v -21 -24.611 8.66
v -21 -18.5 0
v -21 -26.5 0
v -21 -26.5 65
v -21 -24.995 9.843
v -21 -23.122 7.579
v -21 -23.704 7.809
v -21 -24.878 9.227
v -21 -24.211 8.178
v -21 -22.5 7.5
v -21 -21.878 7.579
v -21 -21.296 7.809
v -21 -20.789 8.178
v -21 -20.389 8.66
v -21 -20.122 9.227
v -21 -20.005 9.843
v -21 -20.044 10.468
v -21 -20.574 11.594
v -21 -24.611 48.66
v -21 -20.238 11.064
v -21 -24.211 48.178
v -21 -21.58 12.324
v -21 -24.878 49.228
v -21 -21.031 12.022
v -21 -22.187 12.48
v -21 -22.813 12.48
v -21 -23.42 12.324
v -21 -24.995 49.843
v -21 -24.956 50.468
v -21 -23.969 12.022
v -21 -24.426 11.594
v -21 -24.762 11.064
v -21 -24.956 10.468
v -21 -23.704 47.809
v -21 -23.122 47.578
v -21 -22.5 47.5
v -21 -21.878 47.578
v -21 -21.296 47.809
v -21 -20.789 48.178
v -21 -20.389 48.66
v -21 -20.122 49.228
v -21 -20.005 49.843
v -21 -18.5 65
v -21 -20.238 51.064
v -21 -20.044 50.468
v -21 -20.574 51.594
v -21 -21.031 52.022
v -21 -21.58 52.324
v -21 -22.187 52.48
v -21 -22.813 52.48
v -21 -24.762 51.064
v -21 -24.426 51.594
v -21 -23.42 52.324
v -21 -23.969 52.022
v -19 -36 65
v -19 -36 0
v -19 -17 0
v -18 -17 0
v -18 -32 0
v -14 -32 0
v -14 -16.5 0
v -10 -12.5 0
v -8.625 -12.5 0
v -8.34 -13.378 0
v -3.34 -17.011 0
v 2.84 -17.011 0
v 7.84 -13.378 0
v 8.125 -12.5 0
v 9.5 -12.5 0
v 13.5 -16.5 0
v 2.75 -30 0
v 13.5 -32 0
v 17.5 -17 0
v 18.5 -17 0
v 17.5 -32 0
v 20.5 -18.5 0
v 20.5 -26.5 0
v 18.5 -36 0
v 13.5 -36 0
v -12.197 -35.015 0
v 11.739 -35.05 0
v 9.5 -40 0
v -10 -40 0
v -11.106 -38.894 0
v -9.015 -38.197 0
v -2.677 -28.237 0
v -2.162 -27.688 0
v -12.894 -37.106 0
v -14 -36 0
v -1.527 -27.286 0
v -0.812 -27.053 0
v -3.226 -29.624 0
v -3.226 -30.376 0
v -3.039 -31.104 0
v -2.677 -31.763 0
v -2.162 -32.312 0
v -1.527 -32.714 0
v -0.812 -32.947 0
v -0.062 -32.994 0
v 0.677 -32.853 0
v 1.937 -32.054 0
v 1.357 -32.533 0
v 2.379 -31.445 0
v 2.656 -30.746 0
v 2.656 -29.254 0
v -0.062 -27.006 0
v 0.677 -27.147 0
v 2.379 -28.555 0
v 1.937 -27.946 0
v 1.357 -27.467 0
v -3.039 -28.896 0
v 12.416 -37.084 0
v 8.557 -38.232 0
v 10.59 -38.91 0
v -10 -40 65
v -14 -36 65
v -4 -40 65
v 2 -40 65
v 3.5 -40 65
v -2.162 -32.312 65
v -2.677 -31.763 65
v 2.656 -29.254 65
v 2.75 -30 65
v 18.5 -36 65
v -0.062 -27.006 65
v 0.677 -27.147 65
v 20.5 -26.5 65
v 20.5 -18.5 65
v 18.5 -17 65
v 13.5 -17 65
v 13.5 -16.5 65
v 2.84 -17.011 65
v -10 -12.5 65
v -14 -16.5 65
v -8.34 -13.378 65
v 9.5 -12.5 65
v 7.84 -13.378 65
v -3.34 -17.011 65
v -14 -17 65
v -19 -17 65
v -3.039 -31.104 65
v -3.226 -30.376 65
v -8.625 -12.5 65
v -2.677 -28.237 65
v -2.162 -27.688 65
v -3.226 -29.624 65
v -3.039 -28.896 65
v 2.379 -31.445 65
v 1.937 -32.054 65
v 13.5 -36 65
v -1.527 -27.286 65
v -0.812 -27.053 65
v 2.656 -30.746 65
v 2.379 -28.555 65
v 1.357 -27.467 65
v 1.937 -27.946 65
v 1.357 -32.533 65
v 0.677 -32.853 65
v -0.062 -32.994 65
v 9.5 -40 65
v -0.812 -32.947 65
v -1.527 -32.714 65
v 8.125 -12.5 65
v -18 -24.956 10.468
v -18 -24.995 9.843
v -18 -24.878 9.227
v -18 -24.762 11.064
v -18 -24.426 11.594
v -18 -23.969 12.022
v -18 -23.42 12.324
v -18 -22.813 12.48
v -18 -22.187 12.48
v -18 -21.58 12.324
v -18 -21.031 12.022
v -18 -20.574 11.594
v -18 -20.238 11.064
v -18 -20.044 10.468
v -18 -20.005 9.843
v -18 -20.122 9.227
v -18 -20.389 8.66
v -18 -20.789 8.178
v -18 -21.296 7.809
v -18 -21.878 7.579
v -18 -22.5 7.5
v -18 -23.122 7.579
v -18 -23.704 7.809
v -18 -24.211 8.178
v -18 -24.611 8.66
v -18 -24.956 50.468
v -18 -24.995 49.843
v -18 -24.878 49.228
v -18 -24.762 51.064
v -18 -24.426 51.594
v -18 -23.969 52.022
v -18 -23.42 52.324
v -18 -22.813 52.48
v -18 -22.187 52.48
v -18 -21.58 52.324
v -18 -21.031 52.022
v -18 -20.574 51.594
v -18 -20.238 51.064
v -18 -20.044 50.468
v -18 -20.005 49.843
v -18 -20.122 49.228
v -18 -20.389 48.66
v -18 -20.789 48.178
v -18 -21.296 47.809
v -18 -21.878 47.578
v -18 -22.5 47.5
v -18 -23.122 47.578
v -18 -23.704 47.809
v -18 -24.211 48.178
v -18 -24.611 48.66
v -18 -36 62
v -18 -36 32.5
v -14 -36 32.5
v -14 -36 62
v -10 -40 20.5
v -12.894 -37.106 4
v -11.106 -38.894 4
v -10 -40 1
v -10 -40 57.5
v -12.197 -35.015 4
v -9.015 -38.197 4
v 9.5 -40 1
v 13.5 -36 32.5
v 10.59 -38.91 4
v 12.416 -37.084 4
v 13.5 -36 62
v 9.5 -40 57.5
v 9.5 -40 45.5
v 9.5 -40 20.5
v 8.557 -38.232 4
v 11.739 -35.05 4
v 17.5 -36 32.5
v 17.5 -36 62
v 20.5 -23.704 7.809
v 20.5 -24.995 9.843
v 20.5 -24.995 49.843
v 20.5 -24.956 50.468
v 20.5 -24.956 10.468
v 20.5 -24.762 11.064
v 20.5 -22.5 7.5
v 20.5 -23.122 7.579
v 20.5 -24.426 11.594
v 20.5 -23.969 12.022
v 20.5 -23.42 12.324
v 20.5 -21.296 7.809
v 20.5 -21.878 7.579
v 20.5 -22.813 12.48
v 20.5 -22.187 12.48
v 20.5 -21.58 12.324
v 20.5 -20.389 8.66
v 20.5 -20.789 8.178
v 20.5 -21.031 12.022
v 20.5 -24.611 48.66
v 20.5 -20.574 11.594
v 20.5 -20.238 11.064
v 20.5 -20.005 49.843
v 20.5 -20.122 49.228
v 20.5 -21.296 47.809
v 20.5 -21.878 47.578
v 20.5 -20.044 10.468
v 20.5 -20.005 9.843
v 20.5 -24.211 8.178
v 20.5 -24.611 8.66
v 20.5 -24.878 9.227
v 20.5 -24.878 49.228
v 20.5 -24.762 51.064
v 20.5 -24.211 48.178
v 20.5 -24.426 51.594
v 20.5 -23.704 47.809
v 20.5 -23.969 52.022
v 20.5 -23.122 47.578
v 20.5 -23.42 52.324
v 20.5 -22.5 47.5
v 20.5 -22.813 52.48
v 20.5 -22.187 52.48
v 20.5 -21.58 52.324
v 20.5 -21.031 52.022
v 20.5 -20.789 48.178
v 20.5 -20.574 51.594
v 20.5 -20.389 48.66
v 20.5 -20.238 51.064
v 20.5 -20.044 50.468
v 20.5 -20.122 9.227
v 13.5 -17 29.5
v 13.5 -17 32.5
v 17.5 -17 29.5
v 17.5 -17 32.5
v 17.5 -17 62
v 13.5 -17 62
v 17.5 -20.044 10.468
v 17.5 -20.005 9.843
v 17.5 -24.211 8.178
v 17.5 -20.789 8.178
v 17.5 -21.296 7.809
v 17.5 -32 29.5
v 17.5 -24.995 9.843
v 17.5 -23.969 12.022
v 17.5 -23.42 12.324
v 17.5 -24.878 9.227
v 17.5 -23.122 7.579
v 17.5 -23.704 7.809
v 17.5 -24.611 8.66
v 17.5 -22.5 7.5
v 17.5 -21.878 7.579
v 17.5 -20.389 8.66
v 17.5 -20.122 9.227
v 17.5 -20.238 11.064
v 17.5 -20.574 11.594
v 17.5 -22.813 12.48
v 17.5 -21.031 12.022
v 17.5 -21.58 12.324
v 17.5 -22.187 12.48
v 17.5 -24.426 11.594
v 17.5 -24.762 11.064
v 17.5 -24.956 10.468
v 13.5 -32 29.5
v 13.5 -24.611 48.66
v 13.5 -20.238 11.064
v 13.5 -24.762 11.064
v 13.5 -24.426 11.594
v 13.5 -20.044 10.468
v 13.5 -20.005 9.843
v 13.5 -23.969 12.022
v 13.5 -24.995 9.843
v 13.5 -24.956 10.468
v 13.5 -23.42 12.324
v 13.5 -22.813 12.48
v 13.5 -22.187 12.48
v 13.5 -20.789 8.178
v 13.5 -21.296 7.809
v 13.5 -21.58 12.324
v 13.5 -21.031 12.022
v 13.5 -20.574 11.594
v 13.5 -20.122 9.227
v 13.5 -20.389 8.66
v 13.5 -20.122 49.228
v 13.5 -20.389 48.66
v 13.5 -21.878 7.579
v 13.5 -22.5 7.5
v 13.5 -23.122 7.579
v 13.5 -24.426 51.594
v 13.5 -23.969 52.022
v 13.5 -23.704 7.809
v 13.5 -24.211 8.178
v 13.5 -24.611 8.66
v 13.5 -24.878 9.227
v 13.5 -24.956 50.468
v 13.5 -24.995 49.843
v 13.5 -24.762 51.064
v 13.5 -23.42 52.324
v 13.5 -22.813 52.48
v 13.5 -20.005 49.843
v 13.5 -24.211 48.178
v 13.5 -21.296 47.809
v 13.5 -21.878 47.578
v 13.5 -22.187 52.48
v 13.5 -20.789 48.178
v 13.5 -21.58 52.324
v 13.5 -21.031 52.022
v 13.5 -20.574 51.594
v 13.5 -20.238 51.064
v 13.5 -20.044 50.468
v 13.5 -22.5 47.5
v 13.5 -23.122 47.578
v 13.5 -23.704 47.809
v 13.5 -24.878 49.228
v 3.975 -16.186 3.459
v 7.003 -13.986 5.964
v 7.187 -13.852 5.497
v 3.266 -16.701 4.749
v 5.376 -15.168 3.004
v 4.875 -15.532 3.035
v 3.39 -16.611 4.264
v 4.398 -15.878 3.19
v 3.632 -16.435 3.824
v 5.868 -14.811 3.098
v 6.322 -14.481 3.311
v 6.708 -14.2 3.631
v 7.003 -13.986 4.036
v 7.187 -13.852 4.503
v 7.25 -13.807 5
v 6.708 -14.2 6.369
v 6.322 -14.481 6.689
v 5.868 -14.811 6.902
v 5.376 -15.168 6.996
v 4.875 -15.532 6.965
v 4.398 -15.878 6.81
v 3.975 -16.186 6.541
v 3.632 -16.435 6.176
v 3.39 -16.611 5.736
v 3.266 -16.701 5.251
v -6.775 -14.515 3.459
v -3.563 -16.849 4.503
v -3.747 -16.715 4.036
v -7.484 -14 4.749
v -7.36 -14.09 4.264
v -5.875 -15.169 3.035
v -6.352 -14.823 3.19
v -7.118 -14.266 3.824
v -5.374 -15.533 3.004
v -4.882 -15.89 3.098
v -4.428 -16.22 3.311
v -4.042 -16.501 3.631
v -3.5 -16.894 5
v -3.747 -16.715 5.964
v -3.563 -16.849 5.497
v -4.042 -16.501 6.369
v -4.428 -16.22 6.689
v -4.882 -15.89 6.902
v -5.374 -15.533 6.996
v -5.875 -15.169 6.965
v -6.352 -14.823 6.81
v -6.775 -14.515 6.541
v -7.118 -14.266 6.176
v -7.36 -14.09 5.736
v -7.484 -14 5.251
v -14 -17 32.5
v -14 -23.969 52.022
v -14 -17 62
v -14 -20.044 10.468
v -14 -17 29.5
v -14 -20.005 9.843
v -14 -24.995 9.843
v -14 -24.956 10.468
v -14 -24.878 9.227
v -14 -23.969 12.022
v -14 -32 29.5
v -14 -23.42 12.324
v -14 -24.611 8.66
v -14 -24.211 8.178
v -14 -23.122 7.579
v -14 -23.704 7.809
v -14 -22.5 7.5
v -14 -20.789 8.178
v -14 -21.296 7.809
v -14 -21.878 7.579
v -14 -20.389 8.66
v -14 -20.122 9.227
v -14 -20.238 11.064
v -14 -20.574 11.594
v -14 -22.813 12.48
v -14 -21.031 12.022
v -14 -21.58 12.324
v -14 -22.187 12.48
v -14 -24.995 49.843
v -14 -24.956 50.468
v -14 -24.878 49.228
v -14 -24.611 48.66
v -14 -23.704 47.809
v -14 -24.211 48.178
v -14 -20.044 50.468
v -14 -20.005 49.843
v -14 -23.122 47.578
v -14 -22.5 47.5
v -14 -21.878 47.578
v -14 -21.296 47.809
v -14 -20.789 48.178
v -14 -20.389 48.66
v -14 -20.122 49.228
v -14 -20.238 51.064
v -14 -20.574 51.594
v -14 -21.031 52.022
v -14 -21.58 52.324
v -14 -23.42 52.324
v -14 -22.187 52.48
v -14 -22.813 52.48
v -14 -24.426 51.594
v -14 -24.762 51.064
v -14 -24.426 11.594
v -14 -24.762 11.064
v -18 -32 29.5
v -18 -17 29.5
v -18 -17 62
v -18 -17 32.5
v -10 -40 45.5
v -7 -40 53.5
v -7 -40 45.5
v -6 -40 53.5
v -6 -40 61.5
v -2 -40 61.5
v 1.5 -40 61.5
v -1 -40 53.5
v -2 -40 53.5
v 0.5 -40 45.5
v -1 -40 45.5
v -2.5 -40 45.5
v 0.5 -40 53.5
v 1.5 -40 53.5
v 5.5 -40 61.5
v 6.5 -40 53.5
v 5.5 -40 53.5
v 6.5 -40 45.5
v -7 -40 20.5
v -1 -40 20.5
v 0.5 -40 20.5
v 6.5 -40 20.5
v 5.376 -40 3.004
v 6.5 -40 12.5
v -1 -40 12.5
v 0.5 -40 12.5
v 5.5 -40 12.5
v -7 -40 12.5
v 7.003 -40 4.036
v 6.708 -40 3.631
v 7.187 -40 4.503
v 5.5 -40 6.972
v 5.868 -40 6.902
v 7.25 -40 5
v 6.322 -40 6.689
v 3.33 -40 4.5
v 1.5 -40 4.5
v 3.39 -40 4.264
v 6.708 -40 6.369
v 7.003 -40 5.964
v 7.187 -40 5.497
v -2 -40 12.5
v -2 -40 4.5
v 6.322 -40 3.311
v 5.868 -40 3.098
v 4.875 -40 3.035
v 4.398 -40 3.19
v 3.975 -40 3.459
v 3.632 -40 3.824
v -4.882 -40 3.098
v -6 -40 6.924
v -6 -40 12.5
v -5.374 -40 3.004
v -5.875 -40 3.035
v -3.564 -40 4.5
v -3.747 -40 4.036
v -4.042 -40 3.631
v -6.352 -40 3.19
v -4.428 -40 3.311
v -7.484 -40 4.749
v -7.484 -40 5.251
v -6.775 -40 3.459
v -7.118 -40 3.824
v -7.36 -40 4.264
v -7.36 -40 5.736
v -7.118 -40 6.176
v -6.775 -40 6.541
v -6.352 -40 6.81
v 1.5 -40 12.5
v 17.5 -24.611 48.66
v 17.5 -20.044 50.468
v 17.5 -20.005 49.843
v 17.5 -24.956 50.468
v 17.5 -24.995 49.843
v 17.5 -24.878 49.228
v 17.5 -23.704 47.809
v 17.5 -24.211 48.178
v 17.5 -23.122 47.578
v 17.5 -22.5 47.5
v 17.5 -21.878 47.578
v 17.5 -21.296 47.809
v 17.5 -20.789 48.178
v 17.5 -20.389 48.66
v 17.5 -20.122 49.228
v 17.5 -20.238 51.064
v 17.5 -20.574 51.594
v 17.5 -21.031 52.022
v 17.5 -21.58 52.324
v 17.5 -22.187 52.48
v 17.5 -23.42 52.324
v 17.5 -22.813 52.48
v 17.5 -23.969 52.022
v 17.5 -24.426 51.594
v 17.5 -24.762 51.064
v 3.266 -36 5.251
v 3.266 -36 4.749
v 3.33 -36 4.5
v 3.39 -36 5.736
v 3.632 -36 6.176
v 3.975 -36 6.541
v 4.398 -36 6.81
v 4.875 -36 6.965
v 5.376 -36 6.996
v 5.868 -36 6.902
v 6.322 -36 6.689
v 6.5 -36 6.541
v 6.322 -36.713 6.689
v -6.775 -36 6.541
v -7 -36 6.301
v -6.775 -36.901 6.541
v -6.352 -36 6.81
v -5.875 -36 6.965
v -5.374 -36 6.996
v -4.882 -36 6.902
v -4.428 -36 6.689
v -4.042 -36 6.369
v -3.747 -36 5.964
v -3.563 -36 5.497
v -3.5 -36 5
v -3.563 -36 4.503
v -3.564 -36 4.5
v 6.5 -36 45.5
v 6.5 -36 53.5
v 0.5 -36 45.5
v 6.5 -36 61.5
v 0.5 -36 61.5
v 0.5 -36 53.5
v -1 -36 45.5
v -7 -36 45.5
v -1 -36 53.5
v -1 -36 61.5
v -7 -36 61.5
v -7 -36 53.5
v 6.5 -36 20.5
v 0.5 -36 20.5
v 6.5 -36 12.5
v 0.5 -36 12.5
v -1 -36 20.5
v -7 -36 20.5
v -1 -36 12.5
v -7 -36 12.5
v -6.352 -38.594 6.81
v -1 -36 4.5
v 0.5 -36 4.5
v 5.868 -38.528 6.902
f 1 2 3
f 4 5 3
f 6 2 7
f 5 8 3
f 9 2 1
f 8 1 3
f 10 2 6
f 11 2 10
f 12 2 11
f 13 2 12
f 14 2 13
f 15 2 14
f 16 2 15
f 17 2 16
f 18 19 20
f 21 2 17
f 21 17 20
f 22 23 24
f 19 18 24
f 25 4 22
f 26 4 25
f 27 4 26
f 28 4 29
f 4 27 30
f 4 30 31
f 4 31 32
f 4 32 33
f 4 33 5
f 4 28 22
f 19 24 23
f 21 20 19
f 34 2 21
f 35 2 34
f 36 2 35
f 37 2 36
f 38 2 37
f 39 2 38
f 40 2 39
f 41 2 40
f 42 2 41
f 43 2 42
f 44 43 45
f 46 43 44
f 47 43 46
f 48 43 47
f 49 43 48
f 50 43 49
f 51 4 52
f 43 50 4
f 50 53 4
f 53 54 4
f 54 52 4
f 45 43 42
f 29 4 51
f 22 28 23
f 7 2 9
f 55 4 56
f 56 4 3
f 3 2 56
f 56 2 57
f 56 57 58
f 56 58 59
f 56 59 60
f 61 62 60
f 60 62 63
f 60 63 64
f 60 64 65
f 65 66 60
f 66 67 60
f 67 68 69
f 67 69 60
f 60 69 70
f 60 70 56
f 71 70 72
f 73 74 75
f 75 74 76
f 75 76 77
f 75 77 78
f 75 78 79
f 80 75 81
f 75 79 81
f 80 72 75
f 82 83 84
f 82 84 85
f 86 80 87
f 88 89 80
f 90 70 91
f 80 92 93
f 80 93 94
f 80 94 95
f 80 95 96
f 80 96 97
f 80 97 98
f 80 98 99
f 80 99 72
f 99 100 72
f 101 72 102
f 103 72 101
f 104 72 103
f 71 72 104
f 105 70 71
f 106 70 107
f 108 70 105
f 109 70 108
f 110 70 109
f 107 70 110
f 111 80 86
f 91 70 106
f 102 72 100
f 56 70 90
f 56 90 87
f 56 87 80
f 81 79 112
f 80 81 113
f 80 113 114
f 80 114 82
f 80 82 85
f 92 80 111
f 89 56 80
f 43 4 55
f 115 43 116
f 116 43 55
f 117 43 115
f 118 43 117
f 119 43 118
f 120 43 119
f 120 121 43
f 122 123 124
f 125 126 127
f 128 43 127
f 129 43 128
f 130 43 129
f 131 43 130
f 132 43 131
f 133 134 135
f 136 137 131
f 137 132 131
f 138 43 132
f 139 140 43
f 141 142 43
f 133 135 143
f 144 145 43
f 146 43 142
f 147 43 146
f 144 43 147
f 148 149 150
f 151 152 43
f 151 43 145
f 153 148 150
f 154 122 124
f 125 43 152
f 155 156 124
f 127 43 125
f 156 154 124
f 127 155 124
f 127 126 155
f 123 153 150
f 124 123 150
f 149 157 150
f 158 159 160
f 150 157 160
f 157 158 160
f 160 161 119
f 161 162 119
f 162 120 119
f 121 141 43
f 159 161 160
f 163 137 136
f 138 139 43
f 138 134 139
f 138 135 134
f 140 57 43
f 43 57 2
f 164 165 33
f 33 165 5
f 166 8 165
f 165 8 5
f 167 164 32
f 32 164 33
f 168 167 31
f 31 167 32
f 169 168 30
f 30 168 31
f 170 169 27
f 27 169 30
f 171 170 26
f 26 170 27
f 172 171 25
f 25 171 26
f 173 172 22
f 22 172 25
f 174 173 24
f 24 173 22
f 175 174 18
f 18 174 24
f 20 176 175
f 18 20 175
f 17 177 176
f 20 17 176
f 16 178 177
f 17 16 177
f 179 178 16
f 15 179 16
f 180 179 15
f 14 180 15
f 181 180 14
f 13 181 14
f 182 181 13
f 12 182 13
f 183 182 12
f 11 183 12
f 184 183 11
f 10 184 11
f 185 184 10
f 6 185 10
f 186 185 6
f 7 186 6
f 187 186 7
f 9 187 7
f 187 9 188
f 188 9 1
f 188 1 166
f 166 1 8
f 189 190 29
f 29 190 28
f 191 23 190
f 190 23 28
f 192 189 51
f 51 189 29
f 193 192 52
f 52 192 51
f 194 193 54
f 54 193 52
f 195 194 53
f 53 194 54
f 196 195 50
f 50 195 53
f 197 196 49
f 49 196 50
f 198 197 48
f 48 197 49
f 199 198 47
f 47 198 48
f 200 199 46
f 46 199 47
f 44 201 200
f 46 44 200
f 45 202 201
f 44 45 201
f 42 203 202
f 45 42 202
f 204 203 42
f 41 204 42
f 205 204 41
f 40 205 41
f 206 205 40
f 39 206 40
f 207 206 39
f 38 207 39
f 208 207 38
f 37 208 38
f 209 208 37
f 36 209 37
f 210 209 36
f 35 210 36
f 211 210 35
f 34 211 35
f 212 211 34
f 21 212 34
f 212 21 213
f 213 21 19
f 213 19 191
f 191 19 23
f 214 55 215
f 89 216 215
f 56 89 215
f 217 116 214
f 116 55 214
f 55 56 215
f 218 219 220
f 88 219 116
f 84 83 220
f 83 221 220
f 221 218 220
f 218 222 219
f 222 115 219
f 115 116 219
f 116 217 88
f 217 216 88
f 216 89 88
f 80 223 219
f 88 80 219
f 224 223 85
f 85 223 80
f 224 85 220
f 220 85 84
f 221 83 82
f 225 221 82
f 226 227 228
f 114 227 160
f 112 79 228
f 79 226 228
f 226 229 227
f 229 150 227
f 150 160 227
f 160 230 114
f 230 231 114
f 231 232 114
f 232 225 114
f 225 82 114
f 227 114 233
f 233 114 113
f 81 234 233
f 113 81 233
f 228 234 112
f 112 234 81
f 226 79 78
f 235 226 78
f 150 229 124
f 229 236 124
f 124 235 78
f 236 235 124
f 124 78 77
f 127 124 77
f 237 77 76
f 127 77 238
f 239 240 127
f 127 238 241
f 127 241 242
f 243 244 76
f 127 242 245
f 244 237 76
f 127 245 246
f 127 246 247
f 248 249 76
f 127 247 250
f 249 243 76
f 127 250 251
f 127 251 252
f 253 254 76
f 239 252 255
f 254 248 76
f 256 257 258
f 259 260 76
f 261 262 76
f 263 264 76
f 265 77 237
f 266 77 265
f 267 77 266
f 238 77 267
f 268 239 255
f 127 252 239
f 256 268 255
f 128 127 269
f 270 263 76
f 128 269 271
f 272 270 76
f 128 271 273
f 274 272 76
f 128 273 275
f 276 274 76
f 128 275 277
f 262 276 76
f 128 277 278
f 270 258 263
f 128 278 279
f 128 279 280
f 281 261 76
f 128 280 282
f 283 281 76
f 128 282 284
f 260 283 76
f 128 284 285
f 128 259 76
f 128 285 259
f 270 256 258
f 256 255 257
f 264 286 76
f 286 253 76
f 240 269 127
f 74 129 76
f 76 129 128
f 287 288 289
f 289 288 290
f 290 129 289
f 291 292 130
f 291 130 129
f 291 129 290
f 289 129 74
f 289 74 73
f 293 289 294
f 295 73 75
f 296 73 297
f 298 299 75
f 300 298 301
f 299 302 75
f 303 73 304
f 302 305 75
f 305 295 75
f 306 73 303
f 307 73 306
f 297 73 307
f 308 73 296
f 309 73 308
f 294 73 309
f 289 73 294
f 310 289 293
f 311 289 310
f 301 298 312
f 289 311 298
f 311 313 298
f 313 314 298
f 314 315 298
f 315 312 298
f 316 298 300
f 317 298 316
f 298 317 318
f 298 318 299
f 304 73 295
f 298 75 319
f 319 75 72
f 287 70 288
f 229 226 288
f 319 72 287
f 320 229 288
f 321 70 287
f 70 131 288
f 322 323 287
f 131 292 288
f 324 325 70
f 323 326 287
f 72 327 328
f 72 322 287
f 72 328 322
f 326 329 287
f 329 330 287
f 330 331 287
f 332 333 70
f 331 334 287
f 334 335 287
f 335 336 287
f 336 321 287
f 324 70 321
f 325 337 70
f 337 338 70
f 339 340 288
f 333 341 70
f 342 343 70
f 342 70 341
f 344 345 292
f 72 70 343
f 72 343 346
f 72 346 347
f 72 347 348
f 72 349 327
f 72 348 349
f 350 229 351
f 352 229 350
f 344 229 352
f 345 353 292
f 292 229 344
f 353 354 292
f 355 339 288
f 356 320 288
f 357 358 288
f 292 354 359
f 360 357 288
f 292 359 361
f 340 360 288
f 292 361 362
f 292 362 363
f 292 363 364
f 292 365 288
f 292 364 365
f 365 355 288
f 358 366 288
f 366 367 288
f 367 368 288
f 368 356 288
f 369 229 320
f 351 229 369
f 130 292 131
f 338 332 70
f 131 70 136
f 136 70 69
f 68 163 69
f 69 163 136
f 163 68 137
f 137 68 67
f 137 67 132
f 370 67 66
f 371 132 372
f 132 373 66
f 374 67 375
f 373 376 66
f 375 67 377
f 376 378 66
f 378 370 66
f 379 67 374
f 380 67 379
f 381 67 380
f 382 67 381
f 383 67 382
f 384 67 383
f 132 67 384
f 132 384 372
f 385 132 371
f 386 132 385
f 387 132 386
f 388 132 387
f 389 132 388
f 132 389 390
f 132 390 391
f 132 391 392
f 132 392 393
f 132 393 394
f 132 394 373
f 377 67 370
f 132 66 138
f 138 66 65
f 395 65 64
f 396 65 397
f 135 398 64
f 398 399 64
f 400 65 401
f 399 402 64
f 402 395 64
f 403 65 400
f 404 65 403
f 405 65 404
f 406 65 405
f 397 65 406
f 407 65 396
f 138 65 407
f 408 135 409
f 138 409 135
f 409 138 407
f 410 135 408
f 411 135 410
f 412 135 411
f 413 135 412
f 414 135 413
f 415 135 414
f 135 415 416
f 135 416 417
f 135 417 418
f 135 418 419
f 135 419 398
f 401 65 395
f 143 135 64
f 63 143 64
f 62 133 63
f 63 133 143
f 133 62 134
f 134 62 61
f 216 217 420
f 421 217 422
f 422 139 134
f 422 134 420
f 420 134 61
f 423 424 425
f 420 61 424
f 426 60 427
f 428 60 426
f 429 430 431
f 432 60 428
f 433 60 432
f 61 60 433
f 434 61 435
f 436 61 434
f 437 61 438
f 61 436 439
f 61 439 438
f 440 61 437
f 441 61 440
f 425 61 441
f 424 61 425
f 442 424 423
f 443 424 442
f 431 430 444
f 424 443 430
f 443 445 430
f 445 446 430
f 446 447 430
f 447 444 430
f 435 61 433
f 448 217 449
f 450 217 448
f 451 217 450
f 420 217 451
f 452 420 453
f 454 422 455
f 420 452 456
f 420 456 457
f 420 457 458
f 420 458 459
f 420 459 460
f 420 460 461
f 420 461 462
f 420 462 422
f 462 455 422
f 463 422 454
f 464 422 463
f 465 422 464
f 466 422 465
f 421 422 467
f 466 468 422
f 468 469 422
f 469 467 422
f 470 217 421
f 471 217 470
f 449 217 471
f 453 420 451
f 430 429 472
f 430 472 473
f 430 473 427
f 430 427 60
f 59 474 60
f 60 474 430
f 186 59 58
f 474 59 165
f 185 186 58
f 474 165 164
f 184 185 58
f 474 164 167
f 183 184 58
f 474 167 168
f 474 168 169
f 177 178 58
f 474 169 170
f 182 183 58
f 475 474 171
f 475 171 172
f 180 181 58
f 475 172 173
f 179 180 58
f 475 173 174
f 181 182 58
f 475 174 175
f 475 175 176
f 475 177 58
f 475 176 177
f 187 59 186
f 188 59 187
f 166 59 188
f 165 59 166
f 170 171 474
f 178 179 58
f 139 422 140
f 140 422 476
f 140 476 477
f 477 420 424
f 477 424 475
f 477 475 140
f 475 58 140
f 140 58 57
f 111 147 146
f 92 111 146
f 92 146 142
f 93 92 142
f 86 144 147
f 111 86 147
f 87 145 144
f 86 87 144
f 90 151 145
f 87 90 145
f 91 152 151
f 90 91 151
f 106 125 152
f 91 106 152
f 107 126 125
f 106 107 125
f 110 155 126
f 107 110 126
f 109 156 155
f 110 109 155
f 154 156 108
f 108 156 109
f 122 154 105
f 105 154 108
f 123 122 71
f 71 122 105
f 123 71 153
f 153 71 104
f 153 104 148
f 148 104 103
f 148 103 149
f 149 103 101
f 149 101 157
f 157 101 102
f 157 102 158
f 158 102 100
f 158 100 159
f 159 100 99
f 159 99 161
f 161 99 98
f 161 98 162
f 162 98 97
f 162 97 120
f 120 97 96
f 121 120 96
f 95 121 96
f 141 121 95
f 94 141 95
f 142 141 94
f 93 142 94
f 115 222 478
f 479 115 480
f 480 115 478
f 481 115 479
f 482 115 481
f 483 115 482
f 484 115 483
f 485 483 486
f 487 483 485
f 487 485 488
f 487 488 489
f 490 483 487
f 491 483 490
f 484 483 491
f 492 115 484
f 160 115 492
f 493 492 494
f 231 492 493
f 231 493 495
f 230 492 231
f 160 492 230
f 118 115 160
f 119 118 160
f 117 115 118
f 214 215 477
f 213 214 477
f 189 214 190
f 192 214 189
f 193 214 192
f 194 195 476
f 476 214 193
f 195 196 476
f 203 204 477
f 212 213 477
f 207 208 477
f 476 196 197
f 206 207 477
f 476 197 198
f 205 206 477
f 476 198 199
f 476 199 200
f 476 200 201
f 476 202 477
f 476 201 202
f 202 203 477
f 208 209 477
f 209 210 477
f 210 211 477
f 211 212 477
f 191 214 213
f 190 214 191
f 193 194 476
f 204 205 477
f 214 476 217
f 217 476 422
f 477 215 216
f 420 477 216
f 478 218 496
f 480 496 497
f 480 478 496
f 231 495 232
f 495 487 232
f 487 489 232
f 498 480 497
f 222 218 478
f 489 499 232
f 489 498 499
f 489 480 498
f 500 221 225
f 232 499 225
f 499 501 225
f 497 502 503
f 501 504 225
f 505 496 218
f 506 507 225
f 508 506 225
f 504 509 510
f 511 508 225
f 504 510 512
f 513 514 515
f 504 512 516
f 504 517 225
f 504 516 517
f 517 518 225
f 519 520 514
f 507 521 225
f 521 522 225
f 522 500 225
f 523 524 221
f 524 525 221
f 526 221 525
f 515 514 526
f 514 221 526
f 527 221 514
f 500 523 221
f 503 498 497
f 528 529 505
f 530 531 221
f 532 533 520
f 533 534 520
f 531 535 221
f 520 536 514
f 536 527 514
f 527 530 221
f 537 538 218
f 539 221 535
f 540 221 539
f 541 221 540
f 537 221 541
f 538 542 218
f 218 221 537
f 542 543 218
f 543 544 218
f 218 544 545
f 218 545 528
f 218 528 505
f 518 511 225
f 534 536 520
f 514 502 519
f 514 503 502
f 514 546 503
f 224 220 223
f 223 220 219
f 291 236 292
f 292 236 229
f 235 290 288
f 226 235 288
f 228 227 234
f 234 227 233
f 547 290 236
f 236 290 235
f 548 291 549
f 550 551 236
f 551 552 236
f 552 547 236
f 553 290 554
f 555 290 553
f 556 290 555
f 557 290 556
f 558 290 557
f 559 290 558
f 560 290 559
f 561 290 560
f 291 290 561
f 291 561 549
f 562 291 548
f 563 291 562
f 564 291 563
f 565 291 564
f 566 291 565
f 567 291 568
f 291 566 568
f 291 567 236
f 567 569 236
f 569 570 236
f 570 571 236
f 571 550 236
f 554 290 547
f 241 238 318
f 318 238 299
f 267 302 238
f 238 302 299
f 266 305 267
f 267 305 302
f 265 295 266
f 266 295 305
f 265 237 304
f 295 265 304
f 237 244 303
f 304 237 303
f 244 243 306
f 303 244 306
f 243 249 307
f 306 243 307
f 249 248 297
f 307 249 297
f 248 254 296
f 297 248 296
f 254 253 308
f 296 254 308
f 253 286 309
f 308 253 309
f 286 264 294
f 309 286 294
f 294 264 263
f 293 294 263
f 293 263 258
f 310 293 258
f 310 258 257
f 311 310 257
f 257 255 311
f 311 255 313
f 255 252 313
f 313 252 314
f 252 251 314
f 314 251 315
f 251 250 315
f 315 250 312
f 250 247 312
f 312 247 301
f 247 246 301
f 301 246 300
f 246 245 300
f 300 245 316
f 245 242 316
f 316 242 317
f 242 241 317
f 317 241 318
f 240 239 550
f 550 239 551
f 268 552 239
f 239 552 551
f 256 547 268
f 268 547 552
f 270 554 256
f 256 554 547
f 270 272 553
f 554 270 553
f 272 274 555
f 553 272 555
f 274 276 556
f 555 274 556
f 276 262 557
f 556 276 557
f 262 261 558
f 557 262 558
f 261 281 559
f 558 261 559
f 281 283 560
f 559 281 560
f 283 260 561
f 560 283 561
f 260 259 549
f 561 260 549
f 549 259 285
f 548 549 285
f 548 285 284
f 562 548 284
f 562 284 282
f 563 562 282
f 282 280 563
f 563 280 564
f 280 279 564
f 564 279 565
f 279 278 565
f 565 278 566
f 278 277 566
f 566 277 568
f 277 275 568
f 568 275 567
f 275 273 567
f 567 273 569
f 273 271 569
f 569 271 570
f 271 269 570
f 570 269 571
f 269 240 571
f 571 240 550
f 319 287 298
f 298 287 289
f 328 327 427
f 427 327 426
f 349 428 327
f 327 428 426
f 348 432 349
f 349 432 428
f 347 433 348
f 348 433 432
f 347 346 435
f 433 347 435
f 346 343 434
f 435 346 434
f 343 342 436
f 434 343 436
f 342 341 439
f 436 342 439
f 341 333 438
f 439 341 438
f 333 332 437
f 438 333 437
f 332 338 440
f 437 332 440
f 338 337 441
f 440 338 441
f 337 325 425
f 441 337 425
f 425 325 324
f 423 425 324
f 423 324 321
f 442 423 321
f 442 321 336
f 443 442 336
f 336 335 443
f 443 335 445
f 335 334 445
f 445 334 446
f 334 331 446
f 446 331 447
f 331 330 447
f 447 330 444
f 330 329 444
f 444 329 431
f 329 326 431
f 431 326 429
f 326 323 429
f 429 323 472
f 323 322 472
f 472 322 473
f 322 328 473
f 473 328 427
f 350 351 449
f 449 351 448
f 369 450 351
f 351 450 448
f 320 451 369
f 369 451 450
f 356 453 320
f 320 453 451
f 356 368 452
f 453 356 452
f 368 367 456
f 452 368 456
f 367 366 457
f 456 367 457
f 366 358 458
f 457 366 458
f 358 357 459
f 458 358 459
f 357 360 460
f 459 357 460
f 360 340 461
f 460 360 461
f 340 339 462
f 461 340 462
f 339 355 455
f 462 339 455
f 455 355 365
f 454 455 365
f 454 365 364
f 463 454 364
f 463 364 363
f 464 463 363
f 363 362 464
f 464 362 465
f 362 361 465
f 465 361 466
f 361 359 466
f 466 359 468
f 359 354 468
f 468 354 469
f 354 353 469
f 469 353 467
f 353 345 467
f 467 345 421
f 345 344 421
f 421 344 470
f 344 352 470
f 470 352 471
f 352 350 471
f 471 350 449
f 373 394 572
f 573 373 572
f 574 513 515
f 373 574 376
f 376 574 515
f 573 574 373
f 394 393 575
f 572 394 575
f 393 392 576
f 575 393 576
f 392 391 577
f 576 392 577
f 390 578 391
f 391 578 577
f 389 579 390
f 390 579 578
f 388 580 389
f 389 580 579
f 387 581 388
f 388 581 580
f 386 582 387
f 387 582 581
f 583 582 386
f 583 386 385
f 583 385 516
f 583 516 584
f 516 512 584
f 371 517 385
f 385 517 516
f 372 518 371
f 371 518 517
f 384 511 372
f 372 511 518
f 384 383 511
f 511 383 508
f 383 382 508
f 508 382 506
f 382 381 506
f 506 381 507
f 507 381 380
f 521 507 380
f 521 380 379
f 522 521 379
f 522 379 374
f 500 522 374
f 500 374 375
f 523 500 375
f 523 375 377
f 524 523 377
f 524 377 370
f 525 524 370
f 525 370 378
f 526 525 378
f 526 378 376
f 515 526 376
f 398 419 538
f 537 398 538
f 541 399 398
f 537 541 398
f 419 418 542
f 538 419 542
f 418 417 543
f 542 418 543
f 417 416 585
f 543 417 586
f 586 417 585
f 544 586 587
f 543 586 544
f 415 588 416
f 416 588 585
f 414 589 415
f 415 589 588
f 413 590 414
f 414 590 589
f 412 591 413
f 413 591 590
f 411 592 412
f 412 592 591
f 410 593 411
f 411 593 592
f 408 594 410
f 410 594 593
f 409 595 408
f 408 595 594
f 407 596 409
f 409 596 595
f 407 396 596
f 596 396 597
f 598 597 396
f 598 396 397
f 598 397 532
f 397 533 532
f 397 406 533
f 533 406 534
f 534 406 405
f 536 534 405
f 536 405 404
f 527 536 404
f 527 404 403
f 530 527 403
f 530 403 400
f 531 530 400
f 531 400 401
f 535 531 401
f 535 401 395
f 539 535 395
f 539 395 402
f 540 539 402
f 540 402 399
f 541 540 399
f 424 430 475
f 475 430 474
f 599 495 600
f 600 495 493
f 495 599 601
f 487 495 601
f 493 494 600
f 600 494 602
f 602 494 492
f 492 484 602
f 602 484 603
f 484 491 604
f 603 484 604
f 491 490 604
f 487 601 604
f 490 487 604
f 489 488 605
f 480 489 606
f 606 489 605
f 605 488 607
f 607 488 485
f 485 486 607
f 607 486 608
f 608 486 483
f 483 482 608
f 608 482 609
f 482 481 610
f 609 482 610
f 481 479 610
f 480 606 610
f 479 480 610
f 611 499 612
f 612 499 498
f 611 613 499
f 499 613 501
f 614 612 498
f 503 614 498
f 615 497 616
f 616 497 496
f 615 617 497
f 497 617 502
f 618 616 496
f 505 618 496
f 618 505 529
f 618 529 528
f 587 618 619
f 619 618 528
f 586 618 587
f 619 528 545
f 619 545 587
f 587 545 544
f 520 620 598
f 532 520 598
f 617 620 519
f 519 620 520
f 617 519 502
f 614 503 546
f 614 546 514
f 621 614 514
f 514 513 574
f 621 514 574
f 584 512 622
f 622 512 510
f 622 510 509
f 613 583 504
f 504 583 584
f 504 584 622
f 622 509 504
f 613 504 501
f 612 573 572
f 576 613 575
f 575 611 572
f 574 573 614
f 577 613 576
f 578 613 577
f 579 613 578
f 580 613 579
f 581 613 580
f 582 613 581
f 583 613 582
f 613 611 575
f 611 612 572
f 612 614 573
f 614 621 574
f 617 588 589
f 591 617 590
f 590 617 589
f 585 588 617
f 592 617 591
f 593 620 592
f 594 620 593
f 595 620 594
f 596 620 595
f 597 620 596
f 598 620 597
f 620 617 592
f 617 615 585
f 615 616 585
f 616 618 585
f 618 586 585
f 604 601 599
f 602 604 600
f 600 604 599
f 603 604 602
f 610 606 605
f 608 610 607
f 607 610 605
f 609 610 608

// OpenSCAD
// file: lib/servos.scad
/**
 * Futaba S3003 servo
 *
 * @param vector position The position vector
 * @param vector rotation The rotation vector
 */
module futabas3003(position, rotation)
{
	translate(position)
	{
		rotate(rotation)
	    {
			union()
			{
				// Box and ears
				translate([0,0,0])
				{
					cube([20.1, 39.9, 36.1], false);
					translate([1.1, -7.6, 26.6])
					{
                        difference() {
						    cube([18, 7.6, 2.5]);
                            translate([4, 3.5, 0]) cylinder(100, 2);
                            translate([14, 3.5, 0]) cylinder(100, 2);
                        }

                        for (i = [0 : $children - 1]) {
                            translate([4, 3.5, 0]) child(i);
                            translate([14, 3.5, 0]) child(i);
                        }
					}

					translate([1.1, 39.9, 26.6])
					{
                        difference() {
                            cube([18, 7.6, 2.5]);
                            translate([4, 4.5, 0]) cylinder(100, 2);
                            translate([14, 4.5, 0]) cylinder(100, 2);
                        }

                        for (i = [0 : $children - 1]) {
                            translate([4, 4.5, 0]) child(i);
                            translate([14, 4.5, 0]) child(i);
                        }
                    }
				}

				// Main axle
				translate([10, 30, 36.1])
				{
					cylinder(r=6, h=0.4, $fn=30);
					cylinder(r=2.5, h=4.9, $fn=20);
				}
			}
		}
	}
}
// main file
include <lib/servos.scad>

$fn = 25;

DEBUG = false;
DEMO = false;

BODY_HEIGHT = 65.0;
BODY_WIDTH = 27.5;

MAIN_HOLE_DIAMETER = 6;

SERVO_WIDTH = 24;
SERVO_LENGTH = 53.5;

CHANFREIN = 4;

LEG_THICKNESS = 4;
LEG_HOLE_DIAMETER = 2.5;

CONNECTION_WIDTH = 6;
CONNECTION_HEIGHT = 8;

SERVO_HOLDER_HEIGHT = 11.5;
SERVO_HOLDER_WIDTH = 16;

SERVO_HOLDER_SCREW_DIAMETER = 2.7;
SERVO_HOLDER_NUT_DIAMETER = 6;
SERVO_HOLDER_NUT_HEIGHT = 1.9;

WASHER_DIAMETER = 0;//17.7;
WASHER_HEIGHT = 1.1;

LEG_HOLDER_MIN_WALL_THICKNESS = 1;
LEG_HOLDER_MAX_WALL_THICKNESS = 3;

/**
 *  Todo:
 *  - Agrandir la fente des pattes pour limiter les frottements ?
 */

module servo_holder(is_top = true, boolean = false) {

    //position_z = (is_top) ? 8 : 7.6;
    position_z = 7.8; // Average

    module nut_holder(is_top) {

        position_x = (is_top) ? SERVO_HOLDER_WIDTH - CHANFREIN - SERVO_HOLDER_NUT_HEIGHT + 0.01 : - 0.01;

        // Nut holder
        translate([position_x, 8, position_z]) {
            rotate([0, 90, 0]) {
                rotate([0, 0, 90]) {
                    cylinder(r = SERVO_HOLDER_NUT_DIAMETER / 2, h = SERVO_HOLDER_NUT_HEIGHT, $fn = 6);
                }
            }
        }

        // Nut holder
        translate([position_x, 18, position_z]) {
            rotate([0, 90, 0]) {
                rotate([0, 0, 90]) {
                    cylinder(r = SERVO_HOLDER_NUT_DIAMETER / 2, h = SERVO_HOLDER_NUT_HEIGHT, $fn = 6);
                }
            }
        }
    }

    translate([-(SERVO_HOLDER_WIDTH - CHANFREIN) / 2, 0, - (SERVO_HOLDER_HEIGHT - CONNECTION_HEIGHT / 2)]) {
        difference() {
            // Servo holder
            cube(size = [SERVO_HOLDER_WIDTH - CHANFREIN, SERVO_WIDTH, SERVO_HOLDER_HEIGHT]);

            // Servo hole
            translate([-20, 8, position_z])  rotate([0, 90, 0]) cylinder(h = 50, r = SERVO_HOLDER_SCREW_DIAMETER / 2);
            translate([-20, 18, position_z]) rotate([0, 90, 0]) cylinder(h = 50, r = SERVO_HOLDER_SCREW_DIAMETER / 2);

            nut_holder(false);
            
            nut_holder(true);

            // Servo holder chanfrein
            translate([SERVO_WIDTH, 20, -0.1]) {
                rotate([0, -90, 0]) {
                    linear_extrude(height = 30)
                        polygon([[0, 0], [0, -SERVO_WIDTH - 0.1], [4, -SERVO_WIDTH]]);
                }
            }
        }

        // Test
        translate([(SERVO_HOLDER_WIDTH - CHANFREIN) / 2, SERVO_WIDTH, 3.5]) {
            linear_extrude(height = CONNECTION_HEIGHT) {
                // Boolean is the slide connection part
                if (boolean) {
                    polygon([[-CONNECTION_WIDTH / 2,0],[CONNECTION_WIDTH / 2,0],[CONNECTION_WIDTH / 2,4],[-CONNECTION_WIDTH / 2,4],[-3,0]]);
                } else {
                    polygon([[-CONNECTION_WIDTH / 2 + 1,0],[CONNECTION_WIDTH / 2 - 1,0],[CONNECTION_WIDTH / 2,4],[-CONNECTION_WIDTH / 2,4]]);
                }
            }
        }
    }
}


module leg_holder(slot = false) {

    max_thickness = LEG_HOLDER_MAX_WALL_THICKNESS - LEG_HOLDER_MIN_WALL_THICKNESS;

    difference() {
        linear_extrude(height = BODY_HEIGHT) {
            polygon([
                [LEG_HOLDER_MIN_WALL_THICKNESS + LEG_THICKNESS, 19],
                [LEG_HOLDER_MIN_WALL_THICKNESS + LEG_THICKNESS + max_thickness, 15 + LEG_HOLE_DIAMETER],
                [LEG_HOLDER_MIN_WALL_THICKNESS + LEG_THICKNESS + max_thickness, 12 - LEG_HOLE_DIAMETER],
                [LEG_HOLDER_MIN_WALL_THICKNESS + LEG_THICKNESS, 0],
                [0, 0],
                [0, 19]
            ]);
        }

        translate([0, LEG_THICKNESS, -1]) {
            cube(size = [LEG_THICKNESS, 100, BODY_HEIGHT - 2]);
        }

        if (slot) {
            translate([0, LEG_THICKNESS - 5, BODY_HEIGHT / 2]) {
                cube(size = [LEG_THICKNESS, 30, BODY_HEIGHT / 2 - 3]);
            }
        }
    }

    translate([0, 0, BODY_HEIGHT / 2 - 3]) {
        cube(size = [LEG_THICKNESS, 19, 3]);
    }

}

module support() {

    module support_servo_holder(rail = true) {
        // Top
        translate([CHANFREIN + SERVO_HOLDER_WIDTH / 2 - 2, -SERVO_WIDTH, SERVO_LENGTH + 4]) {
            rotate([0, 180, 0]) {
                color("RED") servo_holder(true);

                if (rail) {
                    translate([0, 0, CONNECTION_HEIGHT]) {
                        servo_holder(true, true);
                    }
                }
            }
        }

        translate([CHANFREIN + SERVO_HOLDER_WIDTH - 2.5, -SERVO_WIDTH, SERVO_LENGTH + 4]) {
            rotate([0, 180, 0]) {
                color("BLUE") servo_holder(true);

                if (rail) {
                    translate([0, 0, CONNECTION_HEIGHT]) {
                        servo_holder(true, true);
                    }
                }
            }
        }

        // Bottom
        translate([CHANFREIN + SERVO_HOLDER_WIDTH / 2 - 2, -SERVO_WIDTH, SERVO_HOLDER_HEIGHT - 3]) {
            color("RED") servo_holder(false);

            if (rail) {
                translate([0, 0, CONNECTION_HEIGHT]) {
                    servo_holder(false, true);
                }
            }
        }

        translate([CHANFREIN + SERVO_HOLDER_WIDTH - 2.5, -SERVO_WIDTH, SERVO_HOLDER_HEIGHT - 3]) {
            color("BLUE") servo_holder(true);

            if (rail) {
                translate([0, 0, CONNECTION_HEIGHT]) {
                    servo_holder(false, true);
                }
            }
        }
    }

    module rudder_holder() {
        // Rudder holder
        rotate([0, 0, -45]) {
            translate([0, -5.2, 0]) {
                color("RED") rudder();
            }
        }

        rotate([0, 0, 45]) {
            translate([19.45, -24.7, 0]) {
                color("RED") rudder();
            }
        }
    }

    difference() {
        union() {
            difference() {
                cube(size = [BODY_WIDTH, BODY_WIDTH, BODY_HEIGHT]);

                translate([13.75, 10, 0]) {
                    // Main hole
                    translate([0, 0, -1]) {
                        cylinder(h = BODY_HEIGHT + 2, r = MAIN_HOLE_DIAMETER / 2);
                    }

                    if (WASHER_DIAMETER) {
                        // Washer
                        cylinder(r = WASHER_DIAMETER / 2, h = WASHER_HEIGHT / 2, center = true);

                        translate([0, 0, BODY_HEIGHT]) {
                            cylinder(r = WASHER_DIAMETER / 2, h = WASHER_HEIGHT / 2, center = true);
                        }
                    }
                }

                support_servo_holder();
            }

            if (DEBUG) {
                support_servo_holder(false);
            }

            // Right leg holder
            translate([BODY_WIDTH, 4, 0]) {
                leg_holder(true);
            }

            // Left leg holder
            translate([ 0, 4, 0]) {
                mirror([1, 0, 0]) {
                    leg_holder(true);
                }
            }
        }

        // Hole for leg
        translate([-50, BODY_WIDTH - 10, 10]) rotate([0, 90, 0]) cylinder(h = 100, r = LEG_HOLE_DIAMETER);
        translate([-50, BODY_WIDTH - 10, 50]) rotate([0, 90, 0]) cylinder(h = 100, r = LEG_HOLE_DIAMETER);

        // Reduce size
        linear_extrude(height = BODY_HEIGHT) {
            // Body chanfrein
            polygon([[0, BODY_WIDTH - CHANFREIN], [0, BODY_WIDTH], [CHANFREIN, BODY_WIDTH]]);
            polygon([[BODY_WIDTH, BODY_WIDTH - CHANFREIN], [BODY_WIDTH, BODY_WIDTH], [BODY_WIDTH - CHANFREIN, BODY_WIDTH]]);
            polygon([[BODY_WIDTH, 0], [BODY_WIDTH, CHANFREIN], [BODY_WIDTH - CHANFREIN, 0]]);
            polygon([[0, 0], [0, CHANFREIN], [CHANFREIN, 0]]);
        }

        // Front
        translate([BODY_WIDTH / 2, BODY_HEIGHT / 2, -1]) {
            cylinder(r = 10, h = BODY_HEIGHT + 1, $fn = 10);
        }

        // Hole for cable
        translate([BODY_WIDTH / 2 + 5.5, 0, 5]) {
            rotate([90, 0, 0]) {
                cylinder(r = 2, h = 100, center = true);
            }
        }

        // Hole for cable
        translate([8.5, 0, 5]) {
            rotate([90, 0, 0]) {
                cylinder(r = 2, h = 100, center = true);
            }
        }

        rudder_holder();
    }

    if (DEBUG) {
        rudder_holder();
    }
}

module rudder(length = 8) {

    // Rudder
    RUDDER_HEIGHT = 4;
    RUDDER_CYLINDER_HEIGHT = RUDDER_HEIGHT + 2;
    RUDDER_DIAMETER = 6;
    RUDDER_HOLE_DIAMETER = 2;

    difference() {
        union() {
            translate([0, length / 2, RUDDER_HEIGHT / 2]) {
                cube(size = [5.5, length, RUDDER_HEIGHT], center = true);
            }
            cylinder(r = RUDDER_DIAMETER / 2, h = RUDDER_CYLINDER_HEIGHT);
        }

        translate([0, 0, -1]) {
            cylinder(r = RUDDER_HOLE_DIAMETER / 2, h = 100);
        }
    }

    translate([0, length, 0])
    linear_extrude(height = RUDDER_HEIGHT) {
        polygon([[-1.25,0],[1.25,0],[2.25,2],[-2.25,2]]);
    }
}


if (1) {
    translate([-14, -40, 0]) {
        support();

        if (DEBUG) {
            color("GREY")
                translate([SERVO_HOLDER_WIDTH - 27, -1, BODY_HEIGHT - SERVO_HOLDER_HEIGHT - 0.5])
                    rotate([90, 180, 90])
                        futabas3003();
        }
    }

    if (DEMO) {
        translate([-20, 0, 4])  rotate([0, 180, 0]) servo_holder(true);
        translate([10, 0, 4])   rotate([0, 180, 0]) servo_holder(false);

        translate([30, 0, 0])   rudder();
    }

} else {
    rudder();
    //translate([0, 0, 4])    rotate([0, 180, 0]) servo_holder(true);
    //translate([30, 0, 4])   rotate([0, 180, 0]) servo_holder(false);
}
